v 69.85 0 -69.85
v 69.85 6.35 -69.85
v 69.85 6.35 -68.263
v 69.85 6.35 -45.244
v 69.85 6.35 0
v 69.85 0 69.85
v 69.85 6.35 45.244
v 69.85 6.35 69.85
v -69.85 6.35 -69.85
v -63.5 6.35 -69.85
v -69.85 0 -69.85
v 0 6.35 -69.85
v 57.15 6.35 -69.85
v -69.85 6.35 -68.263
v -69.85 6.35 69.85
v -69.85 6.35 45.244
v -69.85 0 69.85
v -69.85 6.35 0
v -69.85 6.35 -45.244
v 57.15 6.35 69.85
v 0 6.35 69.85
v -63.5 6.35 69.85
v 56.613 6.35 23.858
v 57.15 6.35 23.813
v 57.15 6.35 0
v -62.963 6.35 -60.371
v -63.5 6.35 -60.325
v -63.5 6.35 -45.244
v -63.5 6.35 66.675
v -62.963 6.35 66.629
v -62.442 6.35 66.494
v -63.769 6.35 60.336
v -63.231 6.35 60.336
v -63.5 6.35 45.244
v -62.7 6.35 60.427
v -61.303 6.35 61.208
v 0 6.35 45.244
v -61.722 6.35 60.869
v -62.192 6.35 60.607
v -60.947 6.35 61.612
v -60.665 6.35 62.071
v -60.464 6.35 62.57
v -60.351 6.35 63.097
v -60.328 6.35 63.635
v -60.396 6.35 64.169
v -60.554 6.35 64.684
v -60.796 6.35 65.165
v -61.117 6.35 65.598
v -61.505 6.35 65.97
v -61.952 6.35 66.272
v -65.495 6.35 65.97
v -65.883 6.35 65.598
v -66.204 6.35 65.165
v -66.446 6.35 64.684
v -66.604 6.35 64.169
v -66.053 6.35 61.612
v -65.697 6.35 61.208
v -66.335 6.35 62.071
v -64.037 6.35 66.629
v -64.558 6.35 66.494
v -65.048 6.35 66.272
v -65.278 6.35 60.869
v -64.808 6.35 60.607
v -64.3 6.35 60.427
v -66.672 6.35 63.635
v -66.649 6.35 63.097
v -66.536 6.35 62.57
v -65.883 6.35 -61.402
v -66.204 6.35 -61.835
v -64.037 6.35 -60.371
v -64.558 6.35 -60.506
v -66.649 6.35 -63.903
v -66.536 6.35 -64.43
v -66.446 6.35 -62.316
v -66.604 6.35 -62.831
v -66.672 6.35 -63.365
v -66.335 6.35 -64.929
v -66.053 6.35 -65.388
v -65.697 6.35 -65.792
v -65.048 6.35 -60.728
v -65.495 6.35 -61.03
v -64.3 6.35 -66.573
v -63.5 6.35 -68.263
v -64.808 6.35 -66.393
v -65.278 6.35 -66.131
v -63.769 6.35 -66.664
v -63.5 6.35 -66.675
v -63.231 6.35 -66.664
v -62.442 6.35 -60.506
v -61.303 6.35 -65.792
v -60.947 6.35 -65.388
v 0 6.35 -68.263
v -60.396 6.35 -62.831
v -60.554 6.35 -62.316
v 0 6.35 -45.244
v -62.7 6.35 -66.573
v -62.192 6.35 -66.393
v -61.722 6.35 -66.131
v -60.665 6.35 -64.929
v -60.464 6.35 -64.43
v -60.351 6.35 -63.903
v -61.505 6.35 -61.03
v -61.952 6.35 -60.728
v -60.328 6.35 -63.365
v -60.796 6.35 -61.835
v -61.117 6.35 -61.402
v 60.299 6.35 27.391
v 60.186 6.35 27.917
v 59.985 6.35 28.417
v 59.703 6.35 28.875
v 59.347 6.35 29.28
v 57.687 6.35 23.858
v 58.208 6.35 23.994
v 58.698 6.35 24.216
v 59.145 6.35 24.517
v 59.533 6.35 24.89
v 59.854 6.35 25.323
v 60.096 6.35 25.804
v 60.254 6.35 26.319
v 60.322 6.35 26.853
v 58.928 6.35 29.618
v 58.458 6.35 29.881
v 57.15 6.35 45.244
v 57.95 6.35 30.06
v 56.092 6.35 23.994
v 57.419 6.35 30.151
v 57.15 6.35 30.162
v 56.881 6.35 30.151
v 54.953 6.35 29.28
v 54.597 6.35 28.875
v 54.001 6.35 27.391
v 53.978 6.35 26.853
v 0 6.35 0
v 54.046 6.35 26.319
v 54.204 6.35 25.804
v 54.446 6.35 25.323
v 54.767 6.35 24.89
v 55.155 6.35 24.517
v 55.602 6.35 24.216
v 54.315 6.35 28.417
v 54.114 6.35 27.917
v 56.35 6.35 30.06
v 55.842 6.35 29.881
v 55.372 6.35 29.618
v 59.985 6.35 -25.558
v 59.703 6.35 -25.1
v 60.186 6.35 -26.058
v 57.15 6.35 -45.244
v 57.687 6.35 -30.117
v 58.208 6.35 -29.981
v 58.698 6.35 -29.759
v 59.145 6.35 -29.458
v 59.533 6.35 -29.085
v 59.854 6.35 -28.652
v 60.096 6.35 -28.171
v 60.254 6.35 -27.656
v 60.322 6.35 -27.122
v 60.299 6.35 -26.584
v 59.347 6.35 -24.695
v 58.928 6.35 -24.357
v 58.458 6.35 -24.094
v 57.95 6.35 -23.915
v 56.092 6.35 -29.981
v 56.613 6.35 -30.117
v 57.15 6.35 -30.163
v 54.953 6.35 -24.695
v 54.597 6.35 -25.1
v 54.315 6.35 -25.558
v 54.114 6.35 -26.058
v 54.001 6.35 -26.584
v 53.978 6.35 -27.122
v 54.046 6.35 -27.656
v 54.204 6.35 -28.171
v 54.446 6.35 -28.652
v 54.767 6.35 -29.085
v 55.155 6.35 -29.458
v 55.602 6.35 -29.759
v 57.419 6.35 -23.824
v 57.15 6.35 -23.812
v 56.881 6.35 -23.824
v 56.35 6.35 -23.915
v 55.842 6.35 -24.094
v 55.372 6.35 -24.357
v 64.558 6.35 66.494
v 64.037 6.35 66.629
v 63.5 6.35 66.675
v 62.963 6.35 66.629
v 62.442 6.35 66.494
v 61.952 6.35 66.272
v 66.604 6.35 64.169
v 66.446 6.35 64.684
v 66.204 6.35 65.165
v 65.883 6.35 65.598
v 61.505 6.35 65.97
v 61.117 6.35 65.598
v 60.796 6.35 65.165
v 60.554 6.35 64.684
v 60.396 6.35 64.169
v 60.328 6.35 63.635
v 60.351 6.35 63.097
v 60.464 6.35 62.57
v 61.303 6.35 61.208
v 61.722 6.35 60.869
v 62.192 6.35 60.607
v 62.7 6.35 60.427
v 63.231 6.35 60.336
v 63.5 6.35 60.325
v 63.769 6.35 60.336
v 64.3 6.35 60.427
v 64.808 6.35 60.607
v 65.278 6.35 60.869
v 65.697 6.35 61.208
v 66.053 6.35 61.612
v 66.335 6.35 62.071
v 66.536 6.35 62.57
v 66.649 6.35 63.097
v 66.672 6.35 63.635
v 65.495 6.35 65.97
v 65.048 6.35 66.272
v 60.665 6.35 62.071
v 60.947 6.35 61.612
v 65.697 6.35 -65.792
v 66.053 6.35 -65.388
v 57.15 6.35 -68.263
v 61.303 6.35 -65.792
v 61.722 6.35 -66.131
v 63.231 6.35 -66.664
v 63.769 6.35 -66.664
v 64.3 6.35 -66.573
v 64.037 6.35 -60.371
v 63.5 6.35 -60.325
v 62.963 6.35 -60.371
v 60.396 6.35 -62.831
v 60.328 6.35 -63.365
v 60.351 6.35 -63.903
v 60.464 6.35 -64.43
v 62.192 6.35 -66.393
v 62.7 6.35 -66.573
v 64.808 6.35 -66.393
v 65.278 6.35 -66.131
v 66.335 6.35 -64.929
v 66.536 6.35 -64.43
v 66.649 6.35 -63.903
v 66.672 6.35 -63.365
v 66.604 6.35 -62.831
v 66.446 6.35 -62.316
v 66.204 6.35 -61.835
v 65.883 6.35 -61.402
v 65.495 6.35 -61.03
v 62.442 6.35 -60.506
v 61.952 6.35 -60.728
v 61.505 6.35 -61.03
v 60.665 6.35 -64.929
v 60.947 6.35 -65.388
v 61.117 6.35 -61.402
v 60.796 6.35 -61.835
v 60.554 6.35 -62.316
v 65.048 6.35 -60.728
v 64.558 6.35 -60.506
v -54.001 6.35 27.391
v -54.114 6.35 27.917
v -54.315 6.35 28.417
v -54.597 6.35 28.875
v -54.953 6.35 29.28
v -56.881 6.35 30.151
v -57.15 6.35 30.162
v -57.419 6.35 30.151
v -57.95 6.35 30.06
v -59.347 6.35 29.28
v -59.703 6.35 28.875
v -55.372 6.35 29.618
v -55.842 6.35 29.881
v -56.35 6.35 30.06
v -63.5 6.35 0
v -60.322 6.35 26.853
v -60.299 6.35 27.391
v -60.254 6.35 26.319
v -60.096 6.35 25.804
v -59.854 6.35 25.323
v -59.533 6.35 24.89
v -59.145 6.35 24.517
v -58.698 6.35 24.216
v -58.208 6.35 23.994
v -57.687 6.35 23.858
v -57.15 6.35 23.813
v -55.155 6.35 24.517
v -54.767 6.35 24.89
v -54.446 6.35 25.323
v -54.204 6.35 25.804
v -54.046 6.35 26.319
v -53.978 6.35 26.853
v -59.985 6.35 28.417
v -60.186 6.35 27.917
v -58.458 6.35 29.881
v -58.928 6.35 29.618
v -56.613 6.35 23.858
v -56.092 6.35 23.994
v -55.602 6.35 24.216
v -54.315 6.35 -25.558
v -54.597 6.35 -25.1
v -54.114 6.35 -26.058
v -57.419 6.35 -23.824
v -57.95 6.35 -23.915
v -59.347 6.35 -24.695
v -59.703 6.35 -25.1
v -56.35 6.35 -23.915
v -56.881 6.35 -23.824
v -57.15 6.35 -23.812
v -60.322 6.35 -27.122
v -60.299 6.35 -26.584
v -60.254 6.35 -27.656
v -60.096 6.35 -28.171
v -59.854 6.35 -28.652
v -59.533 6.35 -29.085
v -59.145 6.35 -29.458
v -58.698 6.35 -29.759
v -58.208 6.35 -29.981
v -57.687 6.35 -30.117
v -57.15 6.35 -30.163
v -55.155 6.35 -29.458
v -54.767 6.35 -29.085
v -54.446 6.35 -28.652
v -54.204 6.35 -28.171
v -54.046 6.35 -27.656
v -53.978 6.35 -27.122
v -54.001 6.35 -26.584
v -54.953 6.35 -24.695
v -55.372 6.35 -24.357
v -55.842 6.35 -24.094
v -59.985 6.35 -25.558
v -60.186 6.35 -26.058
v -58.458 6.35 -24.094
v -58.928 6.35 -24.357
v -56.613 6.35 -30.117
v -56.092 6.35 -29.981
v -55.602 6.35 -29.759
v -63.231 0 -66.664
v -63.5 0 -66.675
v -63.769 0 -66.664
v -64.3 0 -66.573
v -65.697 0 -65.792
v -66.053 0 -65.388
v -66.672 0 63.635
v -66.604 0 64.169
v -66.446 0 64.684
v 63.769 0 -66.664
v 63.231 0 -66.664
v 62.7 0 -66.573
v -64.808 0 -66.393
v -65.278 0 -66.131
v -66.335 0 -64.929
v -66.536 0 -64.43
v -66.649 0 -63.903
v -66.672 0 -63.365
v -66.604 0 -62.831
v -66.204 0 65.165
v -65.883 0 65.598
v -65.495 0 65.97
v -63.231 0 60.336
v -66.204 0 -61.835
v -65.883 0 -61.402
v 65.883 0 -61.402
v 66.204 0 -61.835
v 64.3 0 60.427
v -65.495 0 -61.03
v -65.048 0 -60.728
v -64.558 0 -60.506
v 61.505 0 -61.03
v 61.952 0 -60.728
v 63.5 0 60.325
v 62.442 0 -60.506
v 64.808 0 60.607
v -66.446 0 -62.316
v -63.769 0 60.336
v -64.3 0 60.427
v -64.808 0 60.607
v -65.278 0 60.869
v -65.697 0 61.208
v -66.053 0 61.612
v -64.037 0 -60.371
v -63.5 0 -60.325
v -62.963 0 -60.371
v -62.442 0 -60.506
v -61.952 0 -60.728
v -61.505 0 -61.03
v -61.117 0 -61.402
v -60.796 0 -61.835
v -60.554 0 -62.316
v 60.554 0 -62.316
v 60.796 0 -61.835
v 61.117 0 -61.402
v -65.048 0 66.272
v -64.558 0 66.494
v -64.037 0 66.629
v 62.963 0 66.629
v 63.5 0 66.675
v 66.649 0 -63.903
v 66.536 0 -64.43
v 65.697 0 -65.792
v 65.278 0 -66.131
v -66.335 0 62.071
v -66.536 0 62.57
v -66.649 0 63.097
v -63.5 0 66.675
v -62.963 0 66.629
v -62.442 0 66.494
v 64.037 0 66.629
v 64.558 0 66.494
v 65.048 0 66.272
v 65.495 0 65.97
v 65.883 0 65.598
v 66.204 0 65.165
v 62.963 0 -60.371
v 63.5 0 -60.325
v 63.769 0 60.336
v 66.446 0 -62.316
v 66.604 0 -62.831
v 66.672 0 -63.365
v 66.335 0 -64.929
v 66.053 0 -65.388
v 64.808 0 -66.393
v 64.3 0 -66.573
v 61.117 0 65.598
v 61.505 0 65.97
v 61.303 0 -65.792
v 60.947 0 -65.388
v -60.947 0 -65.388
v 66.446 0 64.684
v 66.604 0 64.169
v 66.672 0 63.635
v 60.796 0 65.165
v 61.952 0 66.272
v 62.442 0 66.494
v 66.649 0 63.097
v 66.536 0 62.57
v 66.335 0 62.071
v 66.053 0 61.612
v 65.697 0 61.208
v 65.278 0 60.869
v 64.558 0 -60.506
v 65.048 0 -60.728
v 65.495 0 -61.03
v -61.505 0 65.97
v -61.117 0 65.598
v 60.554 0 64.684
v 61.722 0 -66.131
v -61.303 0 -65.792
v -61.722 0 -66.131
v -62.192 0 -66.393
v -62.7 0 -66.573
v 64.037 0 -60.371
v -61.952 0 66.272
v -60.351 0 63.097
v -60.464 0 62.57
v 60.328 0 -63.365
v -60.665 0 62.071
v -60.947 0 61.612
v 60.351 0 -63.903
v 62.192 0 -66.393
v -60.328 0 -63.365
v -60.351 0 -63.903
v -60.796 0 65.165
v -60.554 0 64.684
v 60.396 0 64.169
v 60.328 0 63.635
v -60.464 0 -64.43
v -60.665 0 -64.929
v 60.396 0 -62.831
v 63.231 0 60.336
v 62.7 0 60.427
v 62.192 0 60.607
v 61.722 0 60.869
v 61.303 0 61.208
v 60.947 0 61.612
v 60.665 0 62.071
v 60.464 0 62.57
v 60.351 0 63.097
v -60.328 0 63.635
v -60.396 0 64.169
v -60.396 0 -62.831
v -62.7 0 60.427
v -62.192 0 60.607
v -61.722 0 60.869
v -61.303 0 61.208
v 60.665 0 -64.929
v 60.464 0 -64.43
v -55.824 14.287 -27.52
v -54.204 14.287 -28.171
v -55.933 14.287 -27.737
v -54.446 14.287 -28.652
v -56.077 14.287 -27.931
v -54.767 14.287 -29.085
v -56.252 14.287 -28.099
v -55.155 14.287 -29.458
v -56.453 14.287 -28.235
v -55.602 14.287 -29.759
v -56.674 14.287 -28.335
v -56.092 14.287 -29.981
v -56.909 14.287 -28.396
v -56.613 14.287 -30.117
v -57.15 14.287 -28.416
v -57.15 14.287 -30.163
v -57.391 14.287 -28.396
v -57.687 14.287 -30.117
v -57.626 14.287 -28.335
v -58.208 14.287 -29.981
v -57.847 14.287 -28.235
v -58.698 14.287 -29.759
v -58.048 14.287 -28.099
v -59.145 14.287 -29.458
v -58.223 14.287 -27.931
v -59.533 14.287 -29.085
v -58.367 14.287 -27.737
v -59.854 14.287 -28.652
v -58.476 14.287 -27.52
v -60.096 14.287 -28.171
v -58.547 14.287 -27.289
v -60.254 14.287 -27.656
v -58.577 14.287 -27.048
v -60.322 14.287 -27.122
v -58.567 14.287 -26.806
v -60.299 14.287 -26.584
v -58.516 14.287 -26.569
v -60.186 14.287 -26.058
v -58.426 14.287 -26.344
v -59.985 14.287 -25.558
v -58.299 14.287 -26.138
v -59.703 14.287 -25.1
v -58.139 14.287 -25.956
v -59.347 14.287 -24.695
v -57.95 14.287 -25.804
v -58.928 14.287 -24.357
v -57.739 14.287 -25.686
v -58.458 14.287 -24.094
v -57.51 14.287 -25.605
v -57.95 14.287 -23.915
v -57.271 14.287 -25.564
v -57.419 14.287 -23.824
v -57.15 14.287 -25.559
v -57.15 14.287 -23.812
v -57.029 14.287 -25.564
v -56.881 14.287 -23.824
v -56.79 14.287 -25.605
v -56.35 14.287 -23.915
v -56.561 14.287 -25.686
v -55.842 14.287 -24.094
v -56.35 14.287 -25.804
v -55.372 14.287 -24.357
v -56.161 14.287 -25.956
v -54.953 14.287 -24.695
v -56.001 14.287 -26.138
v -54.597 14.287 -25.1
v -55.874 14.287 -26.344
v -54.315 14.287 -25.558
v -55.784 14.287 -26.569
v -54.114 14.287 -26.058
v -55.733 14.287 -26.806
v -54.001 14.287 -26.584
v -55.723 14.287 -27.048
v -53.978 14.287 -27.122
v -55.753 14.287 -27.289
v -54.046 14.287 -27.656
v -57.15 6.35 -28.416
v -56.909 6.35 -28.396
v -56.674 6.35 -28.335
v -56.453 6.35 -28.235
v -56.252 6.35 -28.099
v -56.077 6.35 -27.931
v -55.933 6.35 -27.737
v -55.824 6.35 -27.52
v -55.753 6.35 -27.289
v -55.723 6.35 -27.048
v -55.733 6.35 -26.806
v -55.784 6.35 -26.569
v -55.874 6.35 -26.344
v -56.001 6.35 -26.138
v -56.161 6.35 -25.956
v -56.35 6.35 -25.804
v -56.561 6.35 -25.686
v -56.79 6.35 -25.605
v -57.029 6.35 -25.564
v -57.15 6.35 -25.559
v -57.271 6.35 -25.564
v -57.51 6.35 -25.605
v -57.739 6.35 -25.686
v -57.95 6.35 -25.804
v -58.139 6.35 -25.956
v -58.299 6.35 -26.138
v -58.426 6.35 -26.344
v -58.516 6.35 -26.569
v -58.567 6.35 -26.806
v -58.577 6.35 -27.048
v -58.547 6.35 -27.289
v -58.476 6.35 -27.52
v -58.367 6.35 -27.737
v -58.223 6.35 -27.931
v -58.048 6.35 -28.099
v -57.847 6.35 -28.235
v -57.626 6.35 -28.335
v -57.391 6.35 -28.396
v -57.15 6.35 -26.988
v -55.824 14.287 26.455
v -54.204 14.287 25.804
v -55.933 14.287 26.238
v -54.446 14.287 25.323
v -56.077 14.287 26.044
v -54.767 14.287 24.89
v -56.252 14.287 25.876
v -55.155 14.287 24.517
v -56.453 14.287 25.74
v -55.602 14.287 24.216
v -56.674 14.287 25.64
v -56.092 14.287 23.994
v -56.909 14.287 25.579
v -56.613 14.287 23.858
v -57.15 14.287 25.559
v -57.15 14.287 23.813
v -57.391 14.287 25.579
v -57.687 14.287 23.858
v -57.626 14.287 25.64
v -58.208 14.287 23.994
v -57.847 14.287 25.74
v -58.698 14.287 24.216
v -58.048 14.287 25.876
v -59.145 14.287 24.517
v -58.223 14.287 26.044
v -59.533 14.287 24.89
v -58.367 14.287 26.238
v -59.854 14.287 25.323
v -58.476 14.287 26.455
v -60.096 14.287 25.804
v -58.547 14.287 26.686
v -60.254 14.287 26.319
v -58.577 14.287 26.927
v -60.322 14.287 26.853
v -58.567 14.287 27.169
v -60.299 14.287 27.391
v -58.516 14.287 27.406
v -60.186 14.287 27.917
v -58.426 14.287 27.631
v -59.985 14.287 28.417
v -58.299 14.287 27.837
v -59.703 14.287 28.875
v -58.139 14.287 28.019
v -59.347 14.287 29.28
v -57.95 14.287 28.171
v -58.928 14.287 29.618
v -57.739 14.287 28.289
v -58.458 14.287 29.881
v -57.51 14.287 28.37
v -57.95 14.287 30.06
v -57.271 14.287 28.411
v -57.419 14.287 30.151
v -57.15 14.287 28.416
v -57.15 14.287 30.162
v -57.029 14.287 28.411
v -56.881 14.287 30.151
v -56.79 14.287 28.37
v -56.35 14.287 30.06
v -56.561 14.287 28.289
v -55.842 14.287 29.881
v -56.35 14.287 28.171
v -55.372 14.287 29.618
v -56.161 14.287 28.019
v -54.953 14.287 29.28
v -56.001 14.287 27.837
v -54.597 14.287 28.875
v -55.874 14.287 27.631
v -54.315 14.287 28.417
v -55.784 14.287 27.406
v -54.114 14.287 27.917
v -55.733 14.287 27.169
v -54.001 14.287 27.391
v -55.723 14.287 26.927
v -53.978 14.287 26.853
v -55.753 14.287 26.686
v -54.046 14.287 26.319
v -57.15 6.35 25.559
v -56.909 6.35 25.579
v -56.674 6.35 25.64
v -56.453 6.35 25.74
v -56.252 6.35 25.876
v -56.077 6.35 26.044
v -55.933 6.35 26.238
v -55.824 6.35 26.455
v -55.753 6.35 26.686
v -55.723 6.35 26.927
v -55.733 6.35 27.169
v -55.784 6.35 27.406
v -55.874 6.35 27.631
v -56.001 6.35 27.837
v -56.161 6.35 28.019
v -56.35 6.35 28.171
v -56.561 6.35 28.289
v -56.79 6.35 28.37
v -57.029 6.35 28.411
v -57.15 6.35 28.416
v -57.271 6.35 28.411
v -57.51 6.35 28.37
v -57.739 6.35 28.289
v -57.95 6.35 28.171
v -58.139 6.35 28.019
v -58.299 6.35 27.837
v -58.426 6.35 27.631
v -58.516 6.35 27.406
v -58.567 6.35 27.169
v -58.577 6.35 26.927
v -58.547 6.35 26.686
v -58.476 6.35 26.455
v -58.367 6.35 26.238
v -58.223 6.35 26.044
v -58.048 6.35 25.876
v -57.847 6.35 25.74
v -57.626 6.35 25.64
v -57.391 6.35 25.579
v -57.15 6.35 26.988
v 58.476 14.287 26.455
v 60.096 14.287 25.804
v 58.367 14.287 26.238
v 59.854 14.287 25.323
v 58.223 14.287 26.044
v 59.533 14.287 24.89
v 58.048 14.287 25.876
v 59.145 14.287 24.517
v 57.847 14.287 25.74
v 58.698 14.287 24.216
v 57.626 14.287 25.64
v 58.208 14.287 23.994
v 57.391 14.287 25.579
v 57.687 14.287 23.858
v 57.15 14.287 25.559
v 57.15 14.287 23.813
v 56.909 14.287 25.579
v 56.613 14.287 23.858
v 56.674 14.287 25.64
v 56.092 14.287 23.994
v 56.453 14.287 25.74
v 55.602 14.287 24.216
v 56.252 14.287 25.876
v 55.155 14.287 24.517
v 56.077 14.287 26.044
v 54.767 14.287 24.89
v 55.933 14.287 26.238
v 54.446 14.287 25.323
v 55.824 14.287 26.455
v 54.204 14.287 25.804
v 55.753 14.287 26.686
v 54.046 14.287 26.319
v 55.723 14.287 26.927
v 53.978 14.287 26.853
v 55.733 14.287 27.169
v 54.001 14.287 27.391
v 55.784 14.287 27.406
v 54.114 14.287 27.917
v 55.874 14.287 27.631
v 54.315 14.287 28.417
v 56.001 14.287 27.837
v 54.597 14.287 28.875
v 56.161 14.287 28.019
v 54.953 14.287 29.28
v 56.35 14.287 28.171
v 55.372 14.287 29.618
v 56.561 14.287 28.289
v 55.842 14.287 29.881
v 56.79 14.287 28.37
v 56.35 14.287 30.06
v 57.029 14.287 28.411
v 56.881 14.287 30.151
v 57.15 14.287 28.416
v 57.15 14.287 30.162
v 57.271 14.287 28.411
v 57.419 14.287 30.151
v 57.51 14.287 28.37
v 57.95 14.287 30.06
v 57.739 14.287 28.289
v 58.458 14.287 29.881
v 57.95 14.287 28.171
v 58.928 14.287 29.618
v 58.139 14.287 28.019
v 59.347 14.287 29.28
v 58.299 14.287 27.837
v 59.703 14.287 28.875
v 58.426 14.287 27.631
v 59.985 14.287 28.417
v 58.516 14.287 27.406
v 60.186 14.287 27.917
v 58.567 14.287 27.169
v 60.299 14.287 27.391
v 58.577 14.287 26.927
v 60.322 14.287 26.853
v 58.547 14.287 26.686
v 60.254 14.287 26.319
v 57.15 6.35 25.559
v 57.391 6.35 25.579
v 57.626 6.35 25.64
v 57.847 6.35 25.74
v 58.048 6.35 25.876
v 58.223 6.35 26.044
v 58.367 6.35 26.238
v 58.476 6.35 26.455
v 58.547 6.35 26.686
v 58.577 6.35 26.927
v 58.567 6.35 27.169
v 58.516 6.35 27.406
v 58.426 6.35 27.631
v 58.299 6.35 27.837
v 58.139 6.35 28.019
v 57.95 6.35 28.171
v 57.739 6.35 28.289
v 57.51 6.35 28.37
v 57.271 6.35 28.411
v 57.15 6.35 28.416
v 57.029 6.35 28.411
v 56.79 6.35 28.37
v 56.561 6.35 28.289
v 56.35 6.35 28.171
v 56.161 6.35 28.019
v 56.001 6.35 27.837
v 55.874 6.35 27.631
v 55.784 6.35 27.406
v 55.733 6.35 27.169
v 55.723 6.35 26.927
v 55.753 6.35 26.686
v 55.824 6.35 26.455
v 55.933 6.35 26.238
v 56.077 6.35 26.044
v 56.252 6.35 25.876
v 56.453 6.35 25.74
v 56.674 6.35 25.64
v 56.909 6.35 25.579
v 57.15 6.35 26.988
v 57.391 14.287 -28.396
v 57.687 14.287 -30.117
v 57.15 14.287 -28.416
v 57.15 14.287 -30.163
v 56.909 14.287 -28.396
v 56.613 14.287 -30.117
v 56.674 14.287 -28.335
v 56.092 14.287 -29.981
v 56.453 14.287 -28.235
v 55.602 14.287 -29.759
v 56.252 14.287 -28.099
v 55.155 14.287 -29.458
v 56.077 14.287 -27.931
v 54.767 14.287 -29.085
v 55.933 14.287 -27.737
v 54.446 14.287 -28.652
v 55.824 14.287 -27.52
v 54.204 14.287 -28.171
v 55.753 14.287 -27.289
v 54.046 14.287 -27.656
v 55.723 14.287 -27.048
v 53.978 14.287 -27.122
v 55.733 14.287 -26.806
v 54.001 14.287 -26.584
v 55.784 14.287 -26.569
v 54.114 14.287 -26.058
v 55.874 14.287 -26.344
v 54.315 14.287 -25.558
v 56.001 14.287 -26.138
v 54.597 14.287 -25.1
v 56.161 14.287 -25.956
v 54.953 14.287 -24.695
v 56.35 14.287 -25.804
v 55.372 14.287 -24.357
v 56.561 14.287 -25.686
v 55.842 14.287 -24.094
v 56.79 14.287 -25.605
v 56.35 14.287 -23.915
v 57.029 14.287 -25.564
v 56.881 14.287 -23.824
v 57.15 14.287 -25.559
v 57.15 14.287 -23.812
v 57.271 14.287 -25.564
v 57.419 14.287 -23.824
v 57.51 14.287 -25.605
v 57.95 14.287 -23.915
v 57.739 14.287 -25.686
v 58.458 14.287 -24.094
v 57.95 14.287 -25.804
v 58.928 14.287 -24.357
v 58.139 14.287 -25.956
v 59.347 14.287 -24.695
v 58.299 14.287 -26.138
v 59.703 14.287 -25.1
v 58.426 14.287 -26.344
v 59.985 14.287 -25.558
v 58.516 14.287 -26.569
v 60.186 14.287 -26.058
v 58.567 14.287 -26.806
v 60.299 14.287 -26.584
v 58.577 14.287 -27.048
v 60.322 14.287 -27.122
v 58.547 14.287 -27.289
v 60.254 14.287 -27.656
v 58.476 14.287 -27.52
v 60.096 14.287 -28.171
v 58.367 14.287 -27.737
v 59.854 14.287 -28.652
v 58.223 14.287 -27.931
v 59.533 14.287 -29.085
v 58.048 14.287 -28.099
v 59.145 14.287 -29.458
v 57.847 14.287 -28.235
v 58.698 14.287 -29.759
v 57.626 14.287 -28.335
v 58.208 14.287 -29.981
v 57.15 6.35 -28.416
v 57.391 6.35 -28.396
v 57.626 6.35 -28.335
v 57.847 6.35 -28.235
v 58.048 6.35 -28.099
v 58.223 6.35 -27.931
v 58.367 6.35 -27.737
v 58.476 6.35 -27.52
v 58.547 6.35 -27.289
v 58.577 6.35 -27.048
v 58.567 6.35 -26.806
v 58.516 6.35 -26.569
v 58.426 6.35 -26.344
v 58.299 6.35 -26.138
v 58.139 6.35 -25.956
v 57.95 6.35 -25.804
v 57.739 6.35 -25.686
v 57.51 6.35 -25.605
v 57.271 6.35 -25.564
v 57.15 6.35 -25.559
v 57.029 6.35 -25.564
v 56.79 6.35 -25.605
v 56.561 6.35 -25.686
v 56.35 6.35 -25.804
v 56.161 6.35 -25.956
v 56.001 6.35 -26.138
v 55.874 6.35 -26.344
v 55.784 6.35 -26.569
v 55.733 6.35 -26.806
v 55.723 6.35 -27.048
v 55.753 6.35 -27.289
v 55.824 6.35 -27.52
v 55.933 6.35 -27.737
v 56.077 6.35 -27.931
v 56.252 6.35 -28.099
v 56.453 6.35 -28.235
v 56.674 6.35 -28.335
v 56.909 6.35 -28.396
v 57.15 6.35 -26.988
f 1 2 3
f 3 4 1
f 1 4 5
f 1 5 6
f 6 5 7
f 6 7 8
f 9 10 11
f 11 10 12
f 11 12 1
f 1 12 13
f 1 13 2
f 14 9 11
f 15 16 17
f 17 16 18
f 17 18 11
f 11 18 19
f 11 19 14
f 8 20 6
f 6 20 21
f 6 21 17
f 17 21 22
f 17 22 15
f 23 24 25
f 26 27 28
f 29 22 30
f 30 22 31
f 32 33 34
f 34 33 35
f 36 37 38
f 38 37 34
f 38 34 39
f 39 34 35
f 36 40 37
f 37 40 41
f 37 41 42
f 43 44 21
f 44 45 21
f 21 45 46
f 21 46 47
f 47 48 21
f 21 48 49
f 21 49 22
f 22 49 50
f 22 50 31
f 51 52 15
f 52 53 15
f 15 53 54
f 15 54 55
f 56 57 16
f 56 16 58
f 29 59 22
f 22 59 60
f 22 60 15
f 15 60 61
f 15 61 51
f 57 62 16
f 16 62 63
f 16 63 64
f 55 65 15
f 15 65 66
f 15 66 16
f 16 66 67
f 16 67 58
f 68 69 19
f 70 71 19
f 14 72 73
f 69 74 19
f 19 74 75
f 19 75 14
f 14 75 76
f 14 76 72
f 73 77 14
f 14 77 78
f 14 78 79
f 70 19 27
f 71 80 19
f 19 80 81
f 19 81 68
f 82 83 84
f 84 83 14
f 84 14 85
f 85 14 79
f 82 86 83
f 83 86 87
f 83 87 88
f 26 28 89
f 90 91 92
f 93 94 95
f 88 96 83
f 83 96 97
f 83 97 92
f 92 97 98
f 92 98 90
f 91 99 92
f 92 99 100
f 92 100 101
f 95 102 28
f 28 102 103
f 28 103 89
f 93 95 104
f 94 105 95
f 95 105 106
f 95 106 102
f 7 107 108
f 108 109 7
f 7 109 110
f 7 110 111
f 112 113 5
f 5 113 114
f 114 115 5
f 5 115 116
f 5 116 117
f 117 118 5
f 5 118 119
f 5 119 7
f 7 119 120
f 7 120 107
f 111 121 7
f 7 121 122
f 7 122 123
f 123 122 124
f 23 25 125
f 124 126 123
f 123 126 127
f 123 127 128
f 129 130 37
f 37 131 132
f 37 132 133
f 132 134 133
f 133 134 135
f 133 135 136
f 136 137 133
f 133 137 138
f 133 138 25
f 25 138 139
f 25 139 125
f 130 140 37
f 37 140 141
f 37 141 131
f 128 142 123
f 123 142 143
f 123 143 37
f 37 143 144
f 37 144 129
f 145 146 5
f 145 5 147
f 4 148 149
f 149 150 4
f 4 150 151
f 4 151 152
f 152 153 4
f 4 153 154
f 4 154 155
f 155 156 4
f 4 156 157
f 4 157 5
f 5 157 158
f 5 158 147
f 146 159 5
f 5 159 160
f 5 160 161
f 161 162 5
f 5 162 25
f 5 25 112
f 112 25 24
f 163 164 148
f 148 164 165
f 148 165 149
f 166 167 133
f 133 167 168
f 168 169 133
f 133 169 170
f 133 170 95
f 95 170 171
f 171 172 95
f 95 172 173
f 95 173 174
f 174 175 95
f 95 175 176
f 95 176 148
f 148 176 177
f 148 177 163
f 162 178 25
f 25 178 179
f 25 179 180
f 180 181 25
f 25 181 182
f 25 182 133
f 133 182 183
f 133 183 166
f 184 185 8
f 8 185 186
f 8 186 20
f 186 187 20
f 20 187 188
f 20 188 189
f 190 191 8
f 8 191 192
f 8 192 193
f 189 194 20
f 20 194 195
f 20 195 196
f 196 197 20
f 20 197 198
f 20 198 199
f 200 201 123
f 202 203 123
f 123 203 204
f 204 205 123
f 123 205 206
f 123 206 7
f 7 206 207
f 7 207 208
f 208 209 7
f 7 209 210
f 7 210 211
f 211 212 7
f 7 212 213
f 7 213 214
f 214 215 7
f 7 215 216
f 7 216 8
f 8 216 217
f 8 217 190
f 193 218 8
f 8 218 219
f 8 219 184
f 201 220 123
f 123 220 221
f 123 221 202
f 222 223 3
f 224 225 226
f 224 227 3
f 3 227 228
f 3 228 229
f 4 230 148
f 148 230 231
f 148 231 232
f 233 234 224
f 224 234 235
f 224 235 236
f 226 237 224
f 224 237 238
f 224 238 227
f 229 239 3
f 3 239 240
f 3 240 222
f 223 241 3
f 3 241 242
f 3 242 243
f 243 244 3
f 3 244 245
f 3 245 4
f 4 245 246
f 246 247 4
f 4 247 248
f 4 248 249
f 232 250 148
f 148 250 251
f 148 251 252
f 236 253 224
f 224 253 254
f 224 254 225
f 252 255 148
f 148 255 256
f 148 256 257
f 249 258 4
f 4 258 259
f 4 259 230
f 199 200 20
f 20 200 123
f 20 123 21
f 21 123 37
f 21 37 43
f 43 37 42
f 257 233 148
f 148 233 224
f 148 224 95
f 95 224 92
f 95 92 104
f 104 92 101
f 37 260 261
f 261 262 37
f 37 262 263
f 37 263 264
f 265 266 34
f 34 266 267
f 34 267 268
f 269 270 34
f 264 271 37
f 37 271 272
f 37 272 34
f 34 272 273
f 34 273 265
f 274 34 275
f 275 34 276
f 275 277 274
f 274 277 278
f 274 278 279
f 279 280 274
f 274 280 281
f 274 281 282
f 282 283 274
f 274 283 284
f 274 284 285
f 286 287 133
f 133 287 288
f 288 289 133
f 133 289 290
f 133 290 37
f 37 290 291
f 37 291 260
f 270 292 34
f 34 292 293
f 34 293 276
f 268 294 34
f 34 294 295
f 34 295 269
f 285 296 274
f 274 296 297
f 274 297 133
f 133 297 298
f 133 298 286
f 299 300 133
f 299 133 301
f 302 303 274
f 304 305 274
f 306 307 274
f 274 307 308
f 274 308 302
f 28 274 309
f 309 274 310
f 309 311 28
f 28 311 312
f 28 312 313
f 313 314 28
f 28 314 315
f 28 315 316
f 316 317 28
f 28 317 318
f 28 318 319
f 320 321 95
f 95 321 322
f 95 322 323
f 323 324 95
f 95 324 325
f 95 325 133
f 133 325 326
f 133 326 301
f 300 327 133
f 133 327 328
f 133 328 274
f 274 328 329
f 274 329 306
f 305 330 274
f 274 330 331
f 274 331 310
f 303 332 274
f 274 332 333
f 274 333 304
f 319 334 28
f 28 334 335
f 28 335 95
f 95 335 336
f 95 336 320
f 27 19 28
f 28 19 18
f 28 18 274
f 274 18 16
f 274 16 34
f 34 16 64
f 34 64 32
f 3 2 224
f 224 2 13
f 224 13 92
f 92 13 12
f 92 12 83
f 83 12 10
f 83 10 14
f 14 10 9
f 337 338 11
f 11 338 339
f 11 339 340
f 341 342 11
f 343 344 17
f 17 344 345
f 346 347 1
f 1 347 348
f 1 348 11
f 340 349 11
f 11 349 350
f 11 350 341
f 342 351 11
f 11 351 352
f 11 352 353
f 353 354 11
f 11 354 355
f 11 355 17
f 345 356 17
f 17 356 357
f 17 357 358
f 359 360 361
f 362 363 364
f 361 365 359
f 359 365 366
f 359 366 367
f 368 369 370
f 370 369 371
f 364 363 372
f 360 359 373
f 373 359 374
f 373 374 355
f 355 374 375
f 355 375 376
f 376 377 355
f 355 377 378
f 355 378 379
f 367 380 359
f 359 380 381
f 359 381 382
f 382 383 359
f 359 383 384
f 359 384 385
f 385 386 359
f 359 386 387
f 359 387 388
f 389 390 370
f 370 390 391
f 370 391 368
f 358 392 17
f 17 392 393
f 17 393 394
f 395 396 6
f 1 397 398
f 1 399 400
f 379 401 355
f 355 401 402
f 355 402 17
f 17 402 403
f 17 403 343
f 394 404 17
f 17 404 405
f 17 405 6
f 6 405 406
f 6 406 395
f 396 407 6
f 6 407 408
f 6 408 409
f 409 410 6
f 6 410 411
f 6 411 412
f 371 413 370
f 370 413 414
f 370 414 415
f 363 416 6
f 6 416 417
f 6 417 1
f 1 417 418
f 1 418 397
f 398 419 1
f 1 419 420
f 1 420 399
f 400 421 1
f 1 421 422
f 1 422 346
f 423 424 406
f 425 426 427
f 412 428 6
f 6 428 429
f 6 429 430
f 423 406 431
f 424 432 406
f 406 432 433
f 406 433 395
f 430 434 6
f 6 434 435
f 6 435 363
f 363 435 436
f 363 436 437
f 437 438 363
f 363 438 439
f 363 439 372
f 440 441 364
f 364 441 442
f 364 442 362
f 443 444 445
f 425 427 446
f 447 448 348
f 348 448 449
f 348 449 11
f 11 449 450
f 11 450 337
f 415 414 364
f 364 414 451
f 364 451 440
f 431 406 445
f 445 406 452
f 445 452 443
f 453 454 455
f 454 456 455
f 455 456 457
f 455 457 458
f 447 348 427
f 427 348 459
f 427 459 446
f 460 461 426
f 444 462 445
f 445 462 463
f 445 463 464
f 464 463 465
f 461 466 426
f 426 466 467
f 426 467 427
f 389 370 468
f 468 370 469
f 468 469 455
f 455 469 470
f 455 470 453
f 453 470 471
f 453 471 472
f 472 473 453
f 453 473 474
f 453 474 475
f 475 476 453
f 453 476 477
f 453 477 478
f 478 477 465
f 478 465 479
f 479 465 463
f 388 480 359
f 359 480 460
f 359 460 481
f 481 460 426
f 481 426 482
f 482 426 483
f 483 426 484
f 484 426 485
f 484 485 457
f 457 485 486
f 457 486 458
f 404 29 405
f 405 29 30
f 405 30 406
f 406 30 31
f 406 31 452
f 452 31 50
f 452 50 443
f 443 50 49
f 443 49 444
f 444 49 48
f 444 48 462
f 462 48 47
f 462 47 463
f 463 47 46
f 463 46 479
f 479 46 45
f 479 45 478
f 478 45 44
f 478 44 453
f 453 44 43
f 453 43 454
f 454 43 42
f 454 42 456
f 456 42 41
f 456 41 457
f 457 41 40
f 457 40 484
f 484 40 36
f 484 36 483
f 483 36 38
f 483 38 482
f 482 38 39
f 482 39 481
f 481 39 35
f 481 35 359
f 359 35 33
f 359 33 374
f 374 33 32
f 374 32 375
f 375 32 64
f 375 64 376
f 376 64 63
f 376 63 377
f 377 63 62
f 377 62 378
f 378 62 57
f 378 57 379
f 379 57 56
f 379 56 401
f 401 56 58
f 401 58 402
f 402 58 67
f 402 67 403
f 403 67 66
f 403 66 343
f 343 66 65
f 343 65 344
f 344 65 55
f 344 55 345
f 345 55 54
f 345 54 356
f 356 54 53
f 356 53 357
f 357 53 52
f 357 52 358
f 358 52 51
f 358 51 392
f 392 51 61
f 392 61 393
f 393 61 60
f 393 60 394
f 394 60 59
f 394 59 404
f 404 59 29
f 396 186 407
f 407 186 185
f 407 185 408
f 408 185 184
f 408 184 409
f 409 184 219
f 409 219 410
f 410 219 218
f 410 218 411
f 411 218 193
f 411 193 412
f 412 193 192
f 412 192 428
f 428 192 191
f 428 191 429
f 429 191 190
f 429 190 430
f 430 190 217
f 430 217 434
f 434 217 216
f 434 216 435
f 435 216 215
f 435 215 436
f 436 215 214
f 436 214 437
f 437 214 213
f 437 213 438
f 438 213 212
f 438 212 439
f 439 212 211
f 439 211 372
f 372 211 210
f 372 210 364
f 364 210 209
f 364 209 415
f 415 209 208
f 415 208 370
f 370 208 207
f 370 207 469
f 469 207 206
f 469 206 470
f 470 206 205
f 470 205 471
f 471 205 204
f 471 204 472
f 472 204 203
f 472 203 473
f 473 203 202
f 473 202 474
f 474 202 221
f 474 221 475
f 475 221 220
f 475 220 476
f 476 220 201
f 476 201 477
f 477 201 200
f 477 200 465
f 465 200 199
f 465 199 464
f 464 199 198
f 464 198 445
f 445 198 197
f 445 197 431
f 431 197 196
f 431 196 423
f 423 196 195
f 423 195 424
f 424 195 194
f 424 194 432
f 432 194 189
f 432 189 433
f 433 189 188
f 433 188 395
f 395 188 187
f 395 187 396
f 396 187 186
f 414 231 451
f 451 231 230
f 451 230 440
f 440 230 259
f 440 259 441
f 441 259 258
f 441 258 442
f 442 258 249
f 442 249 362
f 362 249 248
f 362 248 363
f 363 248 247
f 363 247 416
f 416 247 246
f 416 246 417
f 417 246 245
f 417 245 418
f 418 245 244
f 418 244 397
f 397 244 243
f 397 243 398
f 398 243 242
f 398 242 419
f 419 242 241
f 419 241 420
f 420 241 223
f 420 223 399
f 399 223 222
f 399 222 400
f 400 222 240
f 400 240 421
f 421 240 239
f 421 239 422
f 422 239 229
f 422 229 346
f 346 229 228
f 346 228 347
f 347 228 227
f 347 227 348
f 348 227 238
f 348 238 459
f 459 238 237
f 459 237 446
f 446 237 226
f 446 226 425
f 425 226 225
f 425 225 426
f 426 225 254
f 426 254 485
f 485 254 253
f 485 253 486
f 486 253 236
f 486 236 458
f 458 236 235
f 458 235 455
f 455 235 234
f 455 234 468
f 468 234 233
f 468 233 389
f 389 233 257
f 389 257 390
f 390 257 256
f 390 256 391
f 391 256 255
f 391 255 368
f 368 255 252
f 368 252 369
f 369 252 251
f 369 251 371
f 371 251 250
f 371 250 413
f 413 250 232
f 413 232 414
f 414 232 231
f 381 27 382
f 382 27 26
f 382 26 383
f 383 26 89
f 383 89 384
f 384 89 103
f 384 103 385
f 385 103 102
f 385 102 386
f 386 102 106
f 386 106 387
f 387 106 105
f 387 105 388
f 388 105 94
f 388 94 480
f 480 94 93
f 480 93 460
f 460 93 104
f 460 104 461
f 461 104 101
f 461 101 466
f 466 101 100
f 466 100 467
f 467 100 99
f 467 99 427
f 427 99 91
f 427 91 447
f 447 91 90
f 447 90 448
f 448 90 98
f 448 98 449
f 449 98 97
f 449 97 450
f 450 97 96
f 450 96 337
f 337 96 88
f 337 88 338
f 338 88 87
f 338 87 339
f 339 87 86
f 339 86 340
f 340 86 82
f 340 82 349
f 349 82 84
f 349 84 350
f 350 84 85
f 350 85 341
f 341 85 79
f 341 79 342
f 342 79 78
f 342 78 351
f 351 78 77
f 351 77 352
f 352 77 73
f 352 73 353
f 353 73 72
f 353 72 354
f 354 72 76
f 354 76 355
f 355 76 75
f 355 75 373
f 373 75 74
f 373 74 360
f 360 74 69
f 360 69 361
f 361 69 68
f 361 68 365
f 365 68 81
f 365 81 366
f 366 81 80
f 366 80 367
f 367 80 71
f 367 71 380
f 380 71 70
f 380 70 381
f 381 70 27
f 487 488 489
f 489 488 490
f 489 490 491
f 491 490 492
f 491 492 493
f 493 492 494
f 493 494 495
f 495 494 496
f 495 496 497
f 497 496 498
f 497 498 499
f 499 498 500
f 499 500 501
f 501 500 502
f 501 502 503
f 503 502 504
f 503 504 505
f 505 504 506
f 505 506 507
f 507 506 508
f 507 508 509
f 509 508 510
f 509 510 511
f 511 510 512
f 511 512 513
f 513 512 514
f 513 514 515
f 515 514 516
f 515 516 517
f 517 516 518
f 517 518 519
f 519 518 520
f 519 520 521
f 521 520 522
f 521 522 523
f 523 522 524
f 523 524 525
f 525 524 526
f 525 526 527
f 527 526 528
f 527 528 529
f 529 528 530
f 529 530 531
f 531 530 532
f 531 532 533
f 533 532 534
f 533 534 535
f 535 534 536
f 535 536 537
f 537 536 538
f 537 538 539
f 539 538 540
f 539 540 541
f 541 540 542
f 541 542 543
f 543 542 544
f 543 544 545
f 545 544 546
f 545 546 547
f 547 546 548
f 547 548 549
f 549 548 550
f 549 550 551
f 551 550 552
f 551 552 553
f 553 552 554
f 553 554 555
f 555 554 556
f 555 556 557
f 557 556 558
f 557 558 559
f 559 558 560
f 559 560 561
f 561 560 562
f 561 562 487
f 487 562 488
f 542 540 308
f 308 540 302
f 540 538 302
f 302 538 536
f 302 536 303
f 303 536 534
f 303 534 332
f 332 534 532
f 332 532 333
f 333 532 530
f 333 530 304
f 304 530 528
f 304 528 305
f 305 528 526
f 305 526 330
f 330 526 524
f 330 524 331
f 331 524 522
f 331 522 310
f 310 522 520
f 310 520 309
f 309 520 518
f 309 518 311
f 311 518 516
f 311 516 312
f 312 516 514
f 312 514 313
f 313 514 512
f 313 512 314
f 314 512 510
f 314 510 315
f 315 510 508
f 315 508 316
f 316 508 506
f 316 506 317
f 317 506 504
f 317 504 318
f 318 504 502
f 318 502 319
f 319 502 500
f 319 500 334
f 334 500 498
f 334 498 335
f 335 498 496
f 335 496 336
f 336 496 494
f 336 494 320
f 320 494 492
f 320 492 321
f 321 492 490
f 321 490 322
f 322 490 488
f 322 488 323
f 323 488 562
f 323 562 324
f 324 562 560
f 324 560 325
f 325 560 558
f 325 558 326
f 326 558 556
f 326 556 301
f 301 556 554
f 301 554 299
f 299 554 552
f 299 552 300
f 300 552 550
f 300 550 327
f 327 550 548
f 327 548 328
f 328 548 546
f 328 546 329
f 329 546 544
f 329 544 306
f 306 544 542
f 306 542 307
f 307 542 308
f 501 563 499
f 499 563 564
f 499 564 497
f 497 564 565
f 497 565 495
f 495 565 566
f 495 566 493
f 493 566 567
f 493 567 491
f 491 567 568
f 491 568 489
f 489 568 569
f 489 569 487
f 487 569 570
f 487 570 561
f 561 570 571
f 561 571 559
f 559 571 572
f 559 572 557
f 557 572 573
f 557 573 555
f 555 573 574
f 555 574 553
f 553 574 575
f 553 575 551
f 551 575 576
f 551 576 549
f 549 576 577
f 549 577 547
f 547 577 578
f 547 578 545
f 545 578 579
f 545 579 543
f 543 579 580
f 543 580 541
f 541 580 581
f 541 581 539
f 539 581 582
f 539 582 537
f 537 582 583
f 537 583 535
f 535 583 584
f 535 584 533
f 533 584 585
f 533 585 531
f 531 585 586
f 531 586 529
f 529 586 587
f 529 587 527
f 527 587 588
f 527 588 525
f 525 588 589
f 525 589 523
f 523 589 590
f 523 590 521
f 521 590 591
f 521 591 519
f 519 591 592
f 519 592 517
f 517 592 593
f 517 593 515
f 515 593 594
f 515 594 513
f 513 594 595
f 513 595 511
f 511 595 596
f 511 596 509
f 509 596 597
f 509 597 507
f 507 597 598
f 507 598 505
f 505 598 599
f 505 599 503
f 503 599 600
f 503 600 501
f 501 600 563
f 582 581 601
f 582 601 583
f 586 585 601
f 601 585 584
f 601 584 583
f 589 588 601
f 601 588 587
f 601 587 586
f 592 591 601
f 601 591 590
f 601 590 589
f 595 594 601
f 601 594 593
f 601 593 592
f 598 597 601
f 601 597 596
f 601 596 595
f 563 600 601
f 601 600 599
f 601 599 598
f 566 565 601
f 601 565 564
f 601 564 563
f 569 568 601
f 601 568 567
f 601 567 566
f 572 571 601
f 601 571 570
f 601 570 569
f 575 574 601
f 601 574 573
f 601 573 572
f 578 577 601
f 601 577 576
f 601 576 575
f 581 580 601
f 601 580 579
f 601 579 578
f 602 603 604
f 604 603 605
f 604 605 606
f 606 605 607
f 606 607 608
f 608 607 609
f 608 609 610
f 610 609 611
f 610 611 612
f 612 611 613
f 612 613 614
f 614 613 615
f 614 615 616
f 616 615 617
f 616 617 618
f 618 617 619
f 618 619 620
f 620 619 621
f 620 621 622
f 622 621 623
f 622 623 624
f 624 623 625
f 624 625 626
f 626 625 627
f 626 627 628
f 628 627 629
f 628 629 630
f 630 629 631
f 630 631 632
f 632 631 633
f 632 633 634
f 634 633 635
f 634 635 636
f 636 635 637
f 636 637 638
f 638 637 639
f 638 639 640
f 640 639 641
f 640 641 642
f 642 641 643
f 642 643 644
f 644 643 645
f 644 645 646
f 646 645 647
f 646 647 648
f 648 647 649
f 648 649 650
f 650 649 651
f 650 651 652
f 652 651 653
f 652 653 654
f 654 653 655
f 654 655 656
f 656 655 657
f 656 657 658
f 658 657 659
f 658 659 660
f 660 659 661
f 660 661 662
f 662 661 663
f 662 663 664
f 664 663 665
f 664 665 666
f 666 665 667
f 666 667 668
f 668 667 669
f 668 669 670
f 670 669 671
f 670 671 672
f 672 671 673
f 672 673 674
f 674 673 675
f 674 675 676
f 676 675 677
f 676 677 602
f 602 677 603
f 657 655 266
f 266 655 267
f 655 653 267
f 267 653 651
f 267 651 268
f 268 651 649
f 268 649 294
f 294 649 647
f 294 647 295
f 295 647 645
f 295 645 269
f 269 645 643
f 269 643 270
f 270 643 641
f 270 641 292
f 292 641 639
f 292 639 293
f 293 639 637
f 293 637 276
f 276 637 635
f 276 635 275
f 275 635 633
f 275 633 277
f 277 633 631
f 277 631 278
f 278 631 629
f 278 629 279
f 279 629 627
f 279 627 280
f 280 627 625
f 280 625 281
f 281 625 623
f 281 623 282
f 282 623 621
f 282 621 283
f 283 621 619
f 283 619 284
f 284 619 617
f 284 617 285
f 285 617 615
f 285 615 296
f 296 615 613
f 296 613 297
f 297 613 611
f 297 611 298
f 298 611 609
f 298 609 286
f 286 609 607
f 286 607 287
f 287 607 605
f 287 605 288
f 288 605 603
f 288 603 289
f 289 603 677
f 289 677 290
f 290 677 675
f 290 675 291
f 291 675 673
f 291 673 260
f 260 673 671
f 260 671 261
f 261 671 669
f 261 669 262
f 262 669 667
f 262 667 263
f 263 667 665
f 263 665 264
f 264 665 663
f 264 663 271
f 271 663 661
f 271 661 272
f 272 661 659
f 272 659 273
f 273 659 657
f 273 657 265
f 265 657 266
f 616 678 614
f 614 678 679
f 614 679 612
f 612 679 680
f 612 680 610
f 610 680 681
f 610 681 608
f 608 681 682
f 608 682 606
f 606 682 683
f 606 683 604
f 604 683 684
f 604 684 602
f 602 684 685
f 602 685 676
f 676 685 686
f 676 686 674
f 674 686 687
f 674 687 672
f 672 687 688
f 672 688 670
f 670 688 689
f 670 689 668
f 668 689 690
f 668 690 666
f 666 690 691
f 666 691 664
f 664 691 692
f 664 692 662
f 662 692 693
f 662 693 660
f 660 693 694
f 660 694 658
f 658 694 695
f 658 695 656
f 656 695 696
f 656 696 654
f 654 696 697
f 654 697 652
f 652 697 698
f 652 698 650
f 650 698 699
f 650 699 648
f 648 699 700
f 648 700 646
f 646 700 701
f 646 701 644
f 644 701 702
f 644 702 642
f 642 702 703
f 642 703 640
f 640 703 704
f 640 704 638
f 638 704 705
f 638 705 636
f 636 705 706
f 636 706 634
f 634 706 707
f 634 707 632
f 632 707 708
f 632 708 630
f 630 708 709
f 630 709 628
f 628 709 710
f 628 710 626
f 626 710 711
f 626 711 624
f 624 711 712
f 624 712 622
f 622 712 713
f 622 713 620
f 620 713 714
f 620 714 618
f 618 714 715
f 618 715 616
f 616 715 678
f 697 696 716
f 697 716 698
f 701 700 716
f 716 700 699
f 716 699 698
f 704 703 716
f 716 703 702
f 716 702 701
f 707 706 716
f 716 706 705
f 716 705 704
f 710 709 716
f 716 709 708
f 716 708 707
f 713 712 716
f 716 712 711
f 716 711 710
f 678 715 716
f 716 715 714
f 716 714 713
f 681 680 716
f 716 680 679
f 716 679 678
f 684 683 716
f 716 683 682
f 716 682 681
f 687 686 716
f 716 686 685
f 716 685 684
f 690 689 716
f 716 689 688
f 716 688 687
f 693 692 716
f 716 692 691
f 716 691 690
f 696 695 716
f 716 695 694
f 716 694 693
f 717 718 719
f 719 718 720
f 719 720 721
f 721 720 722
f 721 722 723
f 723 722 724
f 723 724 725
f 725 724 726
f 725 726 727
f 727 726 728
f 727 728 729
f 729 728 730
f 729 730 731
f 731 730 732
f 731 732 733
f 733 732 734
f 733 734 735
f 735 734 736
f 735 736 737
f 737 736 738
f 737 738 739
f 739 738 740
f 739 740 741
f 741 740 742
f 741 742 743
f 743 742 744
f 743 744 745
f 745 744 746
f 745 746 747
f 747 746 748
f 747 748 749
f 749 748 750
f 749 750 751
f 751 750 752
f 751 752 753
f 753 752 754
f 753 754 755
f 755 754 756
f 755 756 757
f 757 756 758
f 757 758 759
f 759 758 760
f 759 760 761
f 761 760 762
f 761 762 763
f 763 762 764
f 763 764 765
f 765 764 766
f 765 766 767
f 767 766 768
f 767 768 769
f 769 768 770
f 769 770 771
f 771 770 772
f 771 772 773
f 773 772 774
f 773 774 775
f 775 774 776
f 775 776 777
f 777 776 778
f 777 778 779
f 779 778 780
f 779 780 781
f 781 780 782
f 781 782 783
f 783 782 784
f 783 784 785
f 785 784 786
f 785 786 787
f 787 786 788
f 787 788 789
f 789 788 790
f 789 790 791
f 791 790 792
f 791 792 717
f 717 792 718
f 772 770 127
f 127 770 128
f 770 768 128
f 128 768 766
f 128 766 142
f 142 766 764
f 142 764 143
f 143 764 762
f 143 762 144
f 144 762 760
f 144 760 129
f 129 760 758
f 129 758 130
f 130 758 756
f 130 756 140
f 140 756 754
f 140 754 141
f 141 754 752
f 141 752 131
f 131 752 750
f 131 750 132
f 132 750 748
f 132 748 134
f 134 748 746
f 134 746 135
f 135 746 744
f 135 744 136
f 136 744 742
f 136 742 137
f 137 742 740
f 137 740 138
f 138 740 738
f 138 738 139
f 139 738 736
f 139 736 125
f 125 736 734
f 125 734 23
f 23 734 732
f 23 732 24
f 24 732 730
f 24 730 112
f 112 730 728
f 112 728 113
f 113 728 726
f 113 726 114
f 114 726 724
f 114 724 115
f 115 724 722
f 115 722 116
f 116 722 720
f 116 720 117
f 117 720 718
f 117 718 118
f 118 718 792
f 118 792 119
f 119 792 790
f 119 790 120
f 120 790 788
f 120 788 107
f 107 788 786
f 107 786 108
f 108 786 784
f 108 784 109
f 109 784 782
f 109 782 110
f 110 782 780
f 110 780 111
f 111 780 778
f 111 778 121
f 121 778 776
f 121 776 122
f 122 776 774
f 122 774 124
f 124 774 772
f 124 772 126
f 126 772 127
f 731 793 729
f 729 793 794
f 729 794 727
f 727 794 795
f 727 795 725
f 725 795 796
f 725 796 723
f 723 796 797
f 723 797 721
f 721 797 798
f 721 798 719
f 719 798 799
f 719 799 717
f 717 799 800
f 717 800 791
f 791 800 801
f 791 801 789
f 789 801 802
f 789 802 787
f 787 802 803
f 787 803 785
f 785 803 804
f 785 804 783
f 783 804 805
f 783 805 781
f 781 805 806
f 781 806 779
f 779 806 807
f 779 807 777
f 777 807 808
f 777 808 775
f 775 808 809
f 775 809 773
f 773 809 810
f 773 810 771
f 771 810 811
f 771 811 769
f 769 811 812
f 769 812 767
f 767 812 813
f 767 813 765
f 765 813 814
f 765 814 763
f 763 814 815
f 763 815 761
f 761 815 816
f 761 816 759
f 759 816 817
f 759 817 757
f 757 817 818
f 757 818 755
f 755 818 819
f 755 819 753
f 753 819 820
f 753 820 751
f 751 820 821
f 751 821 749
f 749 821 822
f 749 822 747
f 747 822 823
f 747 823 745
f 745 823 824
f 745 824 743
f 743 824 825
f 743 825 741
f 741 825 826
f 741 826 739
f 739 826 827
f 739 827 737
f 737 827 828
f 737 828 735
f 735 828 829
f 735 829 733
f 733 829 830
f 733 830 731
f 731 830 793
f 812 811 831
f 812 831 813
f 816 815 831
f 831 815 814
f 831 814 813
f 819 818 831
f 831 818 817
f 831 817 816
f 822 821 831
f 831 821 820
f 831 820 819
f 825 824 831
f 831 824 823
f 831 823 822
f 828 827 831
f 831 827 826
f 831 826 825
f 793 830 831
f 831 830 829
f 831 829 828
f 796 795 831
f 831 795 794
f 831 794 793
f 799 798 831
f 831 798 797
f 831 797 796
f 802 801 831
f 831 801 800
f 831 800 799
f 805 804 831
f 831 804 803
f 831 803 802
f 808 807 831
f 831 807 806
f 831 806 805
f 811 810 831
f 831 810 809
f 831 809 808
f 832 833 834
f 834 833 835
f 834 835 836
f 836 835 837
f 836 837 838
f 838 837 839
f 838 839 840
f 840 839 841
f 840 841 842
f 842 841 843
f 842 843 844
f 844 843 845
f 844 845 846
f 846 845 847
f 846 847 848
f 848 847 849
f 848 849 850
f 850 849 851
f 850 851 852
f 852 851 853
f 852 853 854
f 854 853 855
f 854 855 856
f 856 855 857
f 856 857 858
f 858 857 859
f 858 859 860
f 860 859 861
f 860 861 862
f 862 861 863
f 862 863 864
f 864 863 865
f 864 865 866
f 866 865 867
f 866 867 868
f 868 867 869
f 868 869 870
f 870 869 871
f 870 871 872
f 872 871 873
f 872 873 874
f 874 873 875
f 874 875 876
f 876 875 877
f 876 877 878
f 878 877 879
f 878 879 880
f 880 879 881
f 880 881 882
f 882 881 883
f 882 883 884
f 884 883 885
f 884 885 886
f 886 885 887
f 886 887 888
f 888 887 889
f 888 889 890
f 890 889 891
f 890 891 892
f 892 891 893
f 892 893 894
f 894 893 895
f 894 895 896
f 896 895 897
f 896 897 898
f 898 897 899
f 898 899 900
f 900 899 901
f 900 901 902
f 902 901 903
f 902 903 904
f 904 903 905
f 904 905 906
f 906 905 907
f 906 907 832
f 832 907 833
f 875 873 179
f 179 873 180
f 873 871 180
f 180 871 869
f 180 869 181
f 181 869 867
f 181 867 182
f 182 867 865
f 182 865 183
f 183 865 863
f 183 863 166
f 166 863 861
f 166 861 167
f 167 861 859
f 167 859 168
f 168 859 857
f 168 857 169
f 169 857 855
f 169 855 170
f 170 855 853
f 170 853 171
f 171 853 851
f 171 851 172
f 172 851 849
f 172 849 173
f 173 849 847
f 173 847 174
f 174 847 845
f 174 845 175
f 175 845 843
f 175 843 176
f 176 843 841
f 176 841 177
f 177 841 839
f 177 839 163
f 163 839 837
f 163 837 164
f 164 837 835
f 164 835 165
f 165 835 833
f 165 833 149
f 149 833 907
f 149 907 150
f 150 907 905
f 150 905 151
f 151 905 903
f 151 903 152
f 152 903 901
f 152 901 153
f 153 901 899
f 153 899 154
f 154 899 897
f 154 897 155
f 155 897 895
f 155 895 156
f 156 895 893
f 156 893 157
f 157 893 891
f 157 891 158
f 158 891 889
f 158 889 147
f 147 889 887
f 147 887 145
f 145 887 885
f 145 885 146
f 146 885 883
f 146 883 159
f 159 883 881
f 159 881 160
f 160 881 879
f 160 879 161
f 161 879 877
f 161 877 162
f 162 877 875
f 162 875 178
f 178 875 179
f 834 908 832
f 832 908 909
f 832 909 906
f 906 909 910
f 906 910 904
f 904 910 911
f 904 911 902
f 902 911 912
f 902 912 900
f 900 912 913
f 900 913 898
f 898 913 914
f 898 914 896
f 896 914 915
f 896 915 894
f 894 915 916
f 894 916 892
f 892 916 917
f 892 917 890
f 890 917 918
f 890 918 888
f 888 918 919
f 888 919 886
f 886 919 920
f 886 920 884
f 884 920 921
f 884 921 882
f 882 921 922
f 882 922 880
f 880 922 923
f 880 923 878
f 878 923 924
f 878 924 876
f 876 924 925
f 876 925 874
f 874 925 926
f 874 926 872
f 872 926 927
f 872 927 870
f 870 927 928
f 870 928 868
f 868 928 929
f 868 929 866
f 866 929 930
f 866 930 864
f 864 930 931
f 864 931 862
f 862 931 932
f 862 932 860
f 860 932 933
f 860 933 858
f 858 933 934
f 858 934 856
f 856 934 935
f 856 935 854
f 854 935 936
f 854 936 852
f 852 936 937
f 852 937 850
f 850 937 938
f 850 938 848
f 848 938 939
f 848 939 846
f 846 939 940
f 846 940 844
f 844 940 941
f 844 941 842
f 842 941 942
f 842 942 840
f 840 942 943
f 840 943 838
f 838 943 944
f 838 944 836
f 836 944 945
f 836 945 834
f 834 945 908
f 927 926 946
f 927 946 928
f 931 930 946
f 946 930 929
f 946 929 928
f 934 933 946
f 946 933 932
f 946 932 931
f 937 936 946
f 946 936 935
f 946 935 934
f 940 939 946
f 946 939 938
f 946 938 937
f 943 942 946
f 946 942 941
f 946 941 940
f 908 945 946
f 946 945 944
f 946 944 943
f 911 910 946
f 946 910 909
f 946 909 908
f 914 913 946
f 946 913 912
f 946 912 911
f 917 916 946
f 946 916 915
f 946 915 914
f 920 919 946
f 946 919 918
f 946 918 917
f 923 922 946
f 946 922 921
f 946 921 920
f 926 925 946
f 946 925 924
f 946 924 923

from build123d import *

# Parameters (mm, degrees)
SKETCH1_W           = 139.7
SKETCH1_H           = 139.7
BOSS_EXTRUDE1_DEPTH = 6.35
SKETCH2_R           = 3.175
CUT_EXTRUDE1_DEPTH  = 6.35
SKETCH4_R           = 3.175
SKETCH4_R_2         = 1.42875
BOSS_EXTRUDE2_DEPTH = 7.9375


with BuildPart() as part:
    # Sketch1 → Boss-Extrude1 (new body)
    with BuildSketch(Plane(origin=(0, 0, 0), x_dir=(1, 0, 0), z_dir=(0, 1, 0))):
        Rectangle(SKETCH1_W, SKETCH1_H)
    extrude(amount=BOSS_EXTRUDE1_DEPTH)

    # Sketch2 → Cut-Extrude1 (cut)
    with BuildSketch(Plane(origin=(0, 6.35, 0), x_dir=(1, 0, 0), z_dir=(0, 1, 0))):
        with Locations(Location((-63.5, -63.5, 0), (0, 0, 270))):
            Circle(SKETCH2_R)
        with Locations(Location((63.5, -63.5, 0), (0, 0, 90))):
            Circle(SKETCH2_R)
        with Locations(Location((63.5, 63.5, 0), (0, 0, 270))):
            Circle(SKETCH2_R)
        with Locations(Location((-63.5, 63.5, 0), (0, 0, 90))):
            Circle(SKETCH2_R)
    extrude(amount=-CUT_EXTRUDE1_DEPTH, mode=Mode.SUBTRACT)

    # Sketch4 → Boss-Extrude2 (add)
    # profile 1 of 4: a face of its own
    with BuildSketch(Plane(origin=(0, 6.35, 0), x_dir=(1, 0, 0), z_dir=(0, 1, 0))):
        with Locations(Location((-57.15, 26.9875, 0), (0, 0, 270))):
            Circle(SKETCH4_R)
        with Locations(Location((-57.15, 26.9875, 0), (0, 0, 270))):
            Circle(SKETCH4_R_2, mode=Mode.SUBTRACT)
    # profile 2 of 4: a face of its own
    with BuildSketch(Plane(origin=(0, 6.35, 0), x_dir=(1, 0, 0), z_dir=(0, 1, 0))):
        with Locations(Location((-57.15, -26.9875, 0), (0, 0, 270))):
            Circle(SKETCH4_R)
        with Locations(Location((-57.15, -26.9875, 0), (0, 0, 270))):
            Circle(SKETCH4_R_2, mode=Mode.SUBTRACT)
    # profile 3 of 4: a face of its own
    with BuildSketch(Plane(origin=(0, 6.35, 0), x_dir=(1, 0, 0), z_dir=(0, 1, 0))):
        with Locations(Location((57.15, -26.9875, 0), (0, 0, 270))):
            Circle(SKETCH4_R)
        with Locations(Location((57.15, -26.9875, 0), (0, 0, 270))):
            Circle(SKETCH4_R_2, mode=Mode.SUBTRACT)
    # profile 4 of 4: a face of its own
    with BuildSketch(Plane(origin=(0, 6.35, 0), x_dir=(1, 0, 0), z_dir=(0, 1, 0))):
        with Locations(Location((57.15, 26.9875, 0), (0, 0, 270))):
            Circle(SKETCH4_R)
        with Locations(Location((57.15, 26.9875, 0), (0, 0, 270))):
            Circle(SKETCH4_R_2, mode=Mode.SUBTRACT)
    extrude(amount=BOSS_EXTRUDE2_DEPTH)


solid = part.part
